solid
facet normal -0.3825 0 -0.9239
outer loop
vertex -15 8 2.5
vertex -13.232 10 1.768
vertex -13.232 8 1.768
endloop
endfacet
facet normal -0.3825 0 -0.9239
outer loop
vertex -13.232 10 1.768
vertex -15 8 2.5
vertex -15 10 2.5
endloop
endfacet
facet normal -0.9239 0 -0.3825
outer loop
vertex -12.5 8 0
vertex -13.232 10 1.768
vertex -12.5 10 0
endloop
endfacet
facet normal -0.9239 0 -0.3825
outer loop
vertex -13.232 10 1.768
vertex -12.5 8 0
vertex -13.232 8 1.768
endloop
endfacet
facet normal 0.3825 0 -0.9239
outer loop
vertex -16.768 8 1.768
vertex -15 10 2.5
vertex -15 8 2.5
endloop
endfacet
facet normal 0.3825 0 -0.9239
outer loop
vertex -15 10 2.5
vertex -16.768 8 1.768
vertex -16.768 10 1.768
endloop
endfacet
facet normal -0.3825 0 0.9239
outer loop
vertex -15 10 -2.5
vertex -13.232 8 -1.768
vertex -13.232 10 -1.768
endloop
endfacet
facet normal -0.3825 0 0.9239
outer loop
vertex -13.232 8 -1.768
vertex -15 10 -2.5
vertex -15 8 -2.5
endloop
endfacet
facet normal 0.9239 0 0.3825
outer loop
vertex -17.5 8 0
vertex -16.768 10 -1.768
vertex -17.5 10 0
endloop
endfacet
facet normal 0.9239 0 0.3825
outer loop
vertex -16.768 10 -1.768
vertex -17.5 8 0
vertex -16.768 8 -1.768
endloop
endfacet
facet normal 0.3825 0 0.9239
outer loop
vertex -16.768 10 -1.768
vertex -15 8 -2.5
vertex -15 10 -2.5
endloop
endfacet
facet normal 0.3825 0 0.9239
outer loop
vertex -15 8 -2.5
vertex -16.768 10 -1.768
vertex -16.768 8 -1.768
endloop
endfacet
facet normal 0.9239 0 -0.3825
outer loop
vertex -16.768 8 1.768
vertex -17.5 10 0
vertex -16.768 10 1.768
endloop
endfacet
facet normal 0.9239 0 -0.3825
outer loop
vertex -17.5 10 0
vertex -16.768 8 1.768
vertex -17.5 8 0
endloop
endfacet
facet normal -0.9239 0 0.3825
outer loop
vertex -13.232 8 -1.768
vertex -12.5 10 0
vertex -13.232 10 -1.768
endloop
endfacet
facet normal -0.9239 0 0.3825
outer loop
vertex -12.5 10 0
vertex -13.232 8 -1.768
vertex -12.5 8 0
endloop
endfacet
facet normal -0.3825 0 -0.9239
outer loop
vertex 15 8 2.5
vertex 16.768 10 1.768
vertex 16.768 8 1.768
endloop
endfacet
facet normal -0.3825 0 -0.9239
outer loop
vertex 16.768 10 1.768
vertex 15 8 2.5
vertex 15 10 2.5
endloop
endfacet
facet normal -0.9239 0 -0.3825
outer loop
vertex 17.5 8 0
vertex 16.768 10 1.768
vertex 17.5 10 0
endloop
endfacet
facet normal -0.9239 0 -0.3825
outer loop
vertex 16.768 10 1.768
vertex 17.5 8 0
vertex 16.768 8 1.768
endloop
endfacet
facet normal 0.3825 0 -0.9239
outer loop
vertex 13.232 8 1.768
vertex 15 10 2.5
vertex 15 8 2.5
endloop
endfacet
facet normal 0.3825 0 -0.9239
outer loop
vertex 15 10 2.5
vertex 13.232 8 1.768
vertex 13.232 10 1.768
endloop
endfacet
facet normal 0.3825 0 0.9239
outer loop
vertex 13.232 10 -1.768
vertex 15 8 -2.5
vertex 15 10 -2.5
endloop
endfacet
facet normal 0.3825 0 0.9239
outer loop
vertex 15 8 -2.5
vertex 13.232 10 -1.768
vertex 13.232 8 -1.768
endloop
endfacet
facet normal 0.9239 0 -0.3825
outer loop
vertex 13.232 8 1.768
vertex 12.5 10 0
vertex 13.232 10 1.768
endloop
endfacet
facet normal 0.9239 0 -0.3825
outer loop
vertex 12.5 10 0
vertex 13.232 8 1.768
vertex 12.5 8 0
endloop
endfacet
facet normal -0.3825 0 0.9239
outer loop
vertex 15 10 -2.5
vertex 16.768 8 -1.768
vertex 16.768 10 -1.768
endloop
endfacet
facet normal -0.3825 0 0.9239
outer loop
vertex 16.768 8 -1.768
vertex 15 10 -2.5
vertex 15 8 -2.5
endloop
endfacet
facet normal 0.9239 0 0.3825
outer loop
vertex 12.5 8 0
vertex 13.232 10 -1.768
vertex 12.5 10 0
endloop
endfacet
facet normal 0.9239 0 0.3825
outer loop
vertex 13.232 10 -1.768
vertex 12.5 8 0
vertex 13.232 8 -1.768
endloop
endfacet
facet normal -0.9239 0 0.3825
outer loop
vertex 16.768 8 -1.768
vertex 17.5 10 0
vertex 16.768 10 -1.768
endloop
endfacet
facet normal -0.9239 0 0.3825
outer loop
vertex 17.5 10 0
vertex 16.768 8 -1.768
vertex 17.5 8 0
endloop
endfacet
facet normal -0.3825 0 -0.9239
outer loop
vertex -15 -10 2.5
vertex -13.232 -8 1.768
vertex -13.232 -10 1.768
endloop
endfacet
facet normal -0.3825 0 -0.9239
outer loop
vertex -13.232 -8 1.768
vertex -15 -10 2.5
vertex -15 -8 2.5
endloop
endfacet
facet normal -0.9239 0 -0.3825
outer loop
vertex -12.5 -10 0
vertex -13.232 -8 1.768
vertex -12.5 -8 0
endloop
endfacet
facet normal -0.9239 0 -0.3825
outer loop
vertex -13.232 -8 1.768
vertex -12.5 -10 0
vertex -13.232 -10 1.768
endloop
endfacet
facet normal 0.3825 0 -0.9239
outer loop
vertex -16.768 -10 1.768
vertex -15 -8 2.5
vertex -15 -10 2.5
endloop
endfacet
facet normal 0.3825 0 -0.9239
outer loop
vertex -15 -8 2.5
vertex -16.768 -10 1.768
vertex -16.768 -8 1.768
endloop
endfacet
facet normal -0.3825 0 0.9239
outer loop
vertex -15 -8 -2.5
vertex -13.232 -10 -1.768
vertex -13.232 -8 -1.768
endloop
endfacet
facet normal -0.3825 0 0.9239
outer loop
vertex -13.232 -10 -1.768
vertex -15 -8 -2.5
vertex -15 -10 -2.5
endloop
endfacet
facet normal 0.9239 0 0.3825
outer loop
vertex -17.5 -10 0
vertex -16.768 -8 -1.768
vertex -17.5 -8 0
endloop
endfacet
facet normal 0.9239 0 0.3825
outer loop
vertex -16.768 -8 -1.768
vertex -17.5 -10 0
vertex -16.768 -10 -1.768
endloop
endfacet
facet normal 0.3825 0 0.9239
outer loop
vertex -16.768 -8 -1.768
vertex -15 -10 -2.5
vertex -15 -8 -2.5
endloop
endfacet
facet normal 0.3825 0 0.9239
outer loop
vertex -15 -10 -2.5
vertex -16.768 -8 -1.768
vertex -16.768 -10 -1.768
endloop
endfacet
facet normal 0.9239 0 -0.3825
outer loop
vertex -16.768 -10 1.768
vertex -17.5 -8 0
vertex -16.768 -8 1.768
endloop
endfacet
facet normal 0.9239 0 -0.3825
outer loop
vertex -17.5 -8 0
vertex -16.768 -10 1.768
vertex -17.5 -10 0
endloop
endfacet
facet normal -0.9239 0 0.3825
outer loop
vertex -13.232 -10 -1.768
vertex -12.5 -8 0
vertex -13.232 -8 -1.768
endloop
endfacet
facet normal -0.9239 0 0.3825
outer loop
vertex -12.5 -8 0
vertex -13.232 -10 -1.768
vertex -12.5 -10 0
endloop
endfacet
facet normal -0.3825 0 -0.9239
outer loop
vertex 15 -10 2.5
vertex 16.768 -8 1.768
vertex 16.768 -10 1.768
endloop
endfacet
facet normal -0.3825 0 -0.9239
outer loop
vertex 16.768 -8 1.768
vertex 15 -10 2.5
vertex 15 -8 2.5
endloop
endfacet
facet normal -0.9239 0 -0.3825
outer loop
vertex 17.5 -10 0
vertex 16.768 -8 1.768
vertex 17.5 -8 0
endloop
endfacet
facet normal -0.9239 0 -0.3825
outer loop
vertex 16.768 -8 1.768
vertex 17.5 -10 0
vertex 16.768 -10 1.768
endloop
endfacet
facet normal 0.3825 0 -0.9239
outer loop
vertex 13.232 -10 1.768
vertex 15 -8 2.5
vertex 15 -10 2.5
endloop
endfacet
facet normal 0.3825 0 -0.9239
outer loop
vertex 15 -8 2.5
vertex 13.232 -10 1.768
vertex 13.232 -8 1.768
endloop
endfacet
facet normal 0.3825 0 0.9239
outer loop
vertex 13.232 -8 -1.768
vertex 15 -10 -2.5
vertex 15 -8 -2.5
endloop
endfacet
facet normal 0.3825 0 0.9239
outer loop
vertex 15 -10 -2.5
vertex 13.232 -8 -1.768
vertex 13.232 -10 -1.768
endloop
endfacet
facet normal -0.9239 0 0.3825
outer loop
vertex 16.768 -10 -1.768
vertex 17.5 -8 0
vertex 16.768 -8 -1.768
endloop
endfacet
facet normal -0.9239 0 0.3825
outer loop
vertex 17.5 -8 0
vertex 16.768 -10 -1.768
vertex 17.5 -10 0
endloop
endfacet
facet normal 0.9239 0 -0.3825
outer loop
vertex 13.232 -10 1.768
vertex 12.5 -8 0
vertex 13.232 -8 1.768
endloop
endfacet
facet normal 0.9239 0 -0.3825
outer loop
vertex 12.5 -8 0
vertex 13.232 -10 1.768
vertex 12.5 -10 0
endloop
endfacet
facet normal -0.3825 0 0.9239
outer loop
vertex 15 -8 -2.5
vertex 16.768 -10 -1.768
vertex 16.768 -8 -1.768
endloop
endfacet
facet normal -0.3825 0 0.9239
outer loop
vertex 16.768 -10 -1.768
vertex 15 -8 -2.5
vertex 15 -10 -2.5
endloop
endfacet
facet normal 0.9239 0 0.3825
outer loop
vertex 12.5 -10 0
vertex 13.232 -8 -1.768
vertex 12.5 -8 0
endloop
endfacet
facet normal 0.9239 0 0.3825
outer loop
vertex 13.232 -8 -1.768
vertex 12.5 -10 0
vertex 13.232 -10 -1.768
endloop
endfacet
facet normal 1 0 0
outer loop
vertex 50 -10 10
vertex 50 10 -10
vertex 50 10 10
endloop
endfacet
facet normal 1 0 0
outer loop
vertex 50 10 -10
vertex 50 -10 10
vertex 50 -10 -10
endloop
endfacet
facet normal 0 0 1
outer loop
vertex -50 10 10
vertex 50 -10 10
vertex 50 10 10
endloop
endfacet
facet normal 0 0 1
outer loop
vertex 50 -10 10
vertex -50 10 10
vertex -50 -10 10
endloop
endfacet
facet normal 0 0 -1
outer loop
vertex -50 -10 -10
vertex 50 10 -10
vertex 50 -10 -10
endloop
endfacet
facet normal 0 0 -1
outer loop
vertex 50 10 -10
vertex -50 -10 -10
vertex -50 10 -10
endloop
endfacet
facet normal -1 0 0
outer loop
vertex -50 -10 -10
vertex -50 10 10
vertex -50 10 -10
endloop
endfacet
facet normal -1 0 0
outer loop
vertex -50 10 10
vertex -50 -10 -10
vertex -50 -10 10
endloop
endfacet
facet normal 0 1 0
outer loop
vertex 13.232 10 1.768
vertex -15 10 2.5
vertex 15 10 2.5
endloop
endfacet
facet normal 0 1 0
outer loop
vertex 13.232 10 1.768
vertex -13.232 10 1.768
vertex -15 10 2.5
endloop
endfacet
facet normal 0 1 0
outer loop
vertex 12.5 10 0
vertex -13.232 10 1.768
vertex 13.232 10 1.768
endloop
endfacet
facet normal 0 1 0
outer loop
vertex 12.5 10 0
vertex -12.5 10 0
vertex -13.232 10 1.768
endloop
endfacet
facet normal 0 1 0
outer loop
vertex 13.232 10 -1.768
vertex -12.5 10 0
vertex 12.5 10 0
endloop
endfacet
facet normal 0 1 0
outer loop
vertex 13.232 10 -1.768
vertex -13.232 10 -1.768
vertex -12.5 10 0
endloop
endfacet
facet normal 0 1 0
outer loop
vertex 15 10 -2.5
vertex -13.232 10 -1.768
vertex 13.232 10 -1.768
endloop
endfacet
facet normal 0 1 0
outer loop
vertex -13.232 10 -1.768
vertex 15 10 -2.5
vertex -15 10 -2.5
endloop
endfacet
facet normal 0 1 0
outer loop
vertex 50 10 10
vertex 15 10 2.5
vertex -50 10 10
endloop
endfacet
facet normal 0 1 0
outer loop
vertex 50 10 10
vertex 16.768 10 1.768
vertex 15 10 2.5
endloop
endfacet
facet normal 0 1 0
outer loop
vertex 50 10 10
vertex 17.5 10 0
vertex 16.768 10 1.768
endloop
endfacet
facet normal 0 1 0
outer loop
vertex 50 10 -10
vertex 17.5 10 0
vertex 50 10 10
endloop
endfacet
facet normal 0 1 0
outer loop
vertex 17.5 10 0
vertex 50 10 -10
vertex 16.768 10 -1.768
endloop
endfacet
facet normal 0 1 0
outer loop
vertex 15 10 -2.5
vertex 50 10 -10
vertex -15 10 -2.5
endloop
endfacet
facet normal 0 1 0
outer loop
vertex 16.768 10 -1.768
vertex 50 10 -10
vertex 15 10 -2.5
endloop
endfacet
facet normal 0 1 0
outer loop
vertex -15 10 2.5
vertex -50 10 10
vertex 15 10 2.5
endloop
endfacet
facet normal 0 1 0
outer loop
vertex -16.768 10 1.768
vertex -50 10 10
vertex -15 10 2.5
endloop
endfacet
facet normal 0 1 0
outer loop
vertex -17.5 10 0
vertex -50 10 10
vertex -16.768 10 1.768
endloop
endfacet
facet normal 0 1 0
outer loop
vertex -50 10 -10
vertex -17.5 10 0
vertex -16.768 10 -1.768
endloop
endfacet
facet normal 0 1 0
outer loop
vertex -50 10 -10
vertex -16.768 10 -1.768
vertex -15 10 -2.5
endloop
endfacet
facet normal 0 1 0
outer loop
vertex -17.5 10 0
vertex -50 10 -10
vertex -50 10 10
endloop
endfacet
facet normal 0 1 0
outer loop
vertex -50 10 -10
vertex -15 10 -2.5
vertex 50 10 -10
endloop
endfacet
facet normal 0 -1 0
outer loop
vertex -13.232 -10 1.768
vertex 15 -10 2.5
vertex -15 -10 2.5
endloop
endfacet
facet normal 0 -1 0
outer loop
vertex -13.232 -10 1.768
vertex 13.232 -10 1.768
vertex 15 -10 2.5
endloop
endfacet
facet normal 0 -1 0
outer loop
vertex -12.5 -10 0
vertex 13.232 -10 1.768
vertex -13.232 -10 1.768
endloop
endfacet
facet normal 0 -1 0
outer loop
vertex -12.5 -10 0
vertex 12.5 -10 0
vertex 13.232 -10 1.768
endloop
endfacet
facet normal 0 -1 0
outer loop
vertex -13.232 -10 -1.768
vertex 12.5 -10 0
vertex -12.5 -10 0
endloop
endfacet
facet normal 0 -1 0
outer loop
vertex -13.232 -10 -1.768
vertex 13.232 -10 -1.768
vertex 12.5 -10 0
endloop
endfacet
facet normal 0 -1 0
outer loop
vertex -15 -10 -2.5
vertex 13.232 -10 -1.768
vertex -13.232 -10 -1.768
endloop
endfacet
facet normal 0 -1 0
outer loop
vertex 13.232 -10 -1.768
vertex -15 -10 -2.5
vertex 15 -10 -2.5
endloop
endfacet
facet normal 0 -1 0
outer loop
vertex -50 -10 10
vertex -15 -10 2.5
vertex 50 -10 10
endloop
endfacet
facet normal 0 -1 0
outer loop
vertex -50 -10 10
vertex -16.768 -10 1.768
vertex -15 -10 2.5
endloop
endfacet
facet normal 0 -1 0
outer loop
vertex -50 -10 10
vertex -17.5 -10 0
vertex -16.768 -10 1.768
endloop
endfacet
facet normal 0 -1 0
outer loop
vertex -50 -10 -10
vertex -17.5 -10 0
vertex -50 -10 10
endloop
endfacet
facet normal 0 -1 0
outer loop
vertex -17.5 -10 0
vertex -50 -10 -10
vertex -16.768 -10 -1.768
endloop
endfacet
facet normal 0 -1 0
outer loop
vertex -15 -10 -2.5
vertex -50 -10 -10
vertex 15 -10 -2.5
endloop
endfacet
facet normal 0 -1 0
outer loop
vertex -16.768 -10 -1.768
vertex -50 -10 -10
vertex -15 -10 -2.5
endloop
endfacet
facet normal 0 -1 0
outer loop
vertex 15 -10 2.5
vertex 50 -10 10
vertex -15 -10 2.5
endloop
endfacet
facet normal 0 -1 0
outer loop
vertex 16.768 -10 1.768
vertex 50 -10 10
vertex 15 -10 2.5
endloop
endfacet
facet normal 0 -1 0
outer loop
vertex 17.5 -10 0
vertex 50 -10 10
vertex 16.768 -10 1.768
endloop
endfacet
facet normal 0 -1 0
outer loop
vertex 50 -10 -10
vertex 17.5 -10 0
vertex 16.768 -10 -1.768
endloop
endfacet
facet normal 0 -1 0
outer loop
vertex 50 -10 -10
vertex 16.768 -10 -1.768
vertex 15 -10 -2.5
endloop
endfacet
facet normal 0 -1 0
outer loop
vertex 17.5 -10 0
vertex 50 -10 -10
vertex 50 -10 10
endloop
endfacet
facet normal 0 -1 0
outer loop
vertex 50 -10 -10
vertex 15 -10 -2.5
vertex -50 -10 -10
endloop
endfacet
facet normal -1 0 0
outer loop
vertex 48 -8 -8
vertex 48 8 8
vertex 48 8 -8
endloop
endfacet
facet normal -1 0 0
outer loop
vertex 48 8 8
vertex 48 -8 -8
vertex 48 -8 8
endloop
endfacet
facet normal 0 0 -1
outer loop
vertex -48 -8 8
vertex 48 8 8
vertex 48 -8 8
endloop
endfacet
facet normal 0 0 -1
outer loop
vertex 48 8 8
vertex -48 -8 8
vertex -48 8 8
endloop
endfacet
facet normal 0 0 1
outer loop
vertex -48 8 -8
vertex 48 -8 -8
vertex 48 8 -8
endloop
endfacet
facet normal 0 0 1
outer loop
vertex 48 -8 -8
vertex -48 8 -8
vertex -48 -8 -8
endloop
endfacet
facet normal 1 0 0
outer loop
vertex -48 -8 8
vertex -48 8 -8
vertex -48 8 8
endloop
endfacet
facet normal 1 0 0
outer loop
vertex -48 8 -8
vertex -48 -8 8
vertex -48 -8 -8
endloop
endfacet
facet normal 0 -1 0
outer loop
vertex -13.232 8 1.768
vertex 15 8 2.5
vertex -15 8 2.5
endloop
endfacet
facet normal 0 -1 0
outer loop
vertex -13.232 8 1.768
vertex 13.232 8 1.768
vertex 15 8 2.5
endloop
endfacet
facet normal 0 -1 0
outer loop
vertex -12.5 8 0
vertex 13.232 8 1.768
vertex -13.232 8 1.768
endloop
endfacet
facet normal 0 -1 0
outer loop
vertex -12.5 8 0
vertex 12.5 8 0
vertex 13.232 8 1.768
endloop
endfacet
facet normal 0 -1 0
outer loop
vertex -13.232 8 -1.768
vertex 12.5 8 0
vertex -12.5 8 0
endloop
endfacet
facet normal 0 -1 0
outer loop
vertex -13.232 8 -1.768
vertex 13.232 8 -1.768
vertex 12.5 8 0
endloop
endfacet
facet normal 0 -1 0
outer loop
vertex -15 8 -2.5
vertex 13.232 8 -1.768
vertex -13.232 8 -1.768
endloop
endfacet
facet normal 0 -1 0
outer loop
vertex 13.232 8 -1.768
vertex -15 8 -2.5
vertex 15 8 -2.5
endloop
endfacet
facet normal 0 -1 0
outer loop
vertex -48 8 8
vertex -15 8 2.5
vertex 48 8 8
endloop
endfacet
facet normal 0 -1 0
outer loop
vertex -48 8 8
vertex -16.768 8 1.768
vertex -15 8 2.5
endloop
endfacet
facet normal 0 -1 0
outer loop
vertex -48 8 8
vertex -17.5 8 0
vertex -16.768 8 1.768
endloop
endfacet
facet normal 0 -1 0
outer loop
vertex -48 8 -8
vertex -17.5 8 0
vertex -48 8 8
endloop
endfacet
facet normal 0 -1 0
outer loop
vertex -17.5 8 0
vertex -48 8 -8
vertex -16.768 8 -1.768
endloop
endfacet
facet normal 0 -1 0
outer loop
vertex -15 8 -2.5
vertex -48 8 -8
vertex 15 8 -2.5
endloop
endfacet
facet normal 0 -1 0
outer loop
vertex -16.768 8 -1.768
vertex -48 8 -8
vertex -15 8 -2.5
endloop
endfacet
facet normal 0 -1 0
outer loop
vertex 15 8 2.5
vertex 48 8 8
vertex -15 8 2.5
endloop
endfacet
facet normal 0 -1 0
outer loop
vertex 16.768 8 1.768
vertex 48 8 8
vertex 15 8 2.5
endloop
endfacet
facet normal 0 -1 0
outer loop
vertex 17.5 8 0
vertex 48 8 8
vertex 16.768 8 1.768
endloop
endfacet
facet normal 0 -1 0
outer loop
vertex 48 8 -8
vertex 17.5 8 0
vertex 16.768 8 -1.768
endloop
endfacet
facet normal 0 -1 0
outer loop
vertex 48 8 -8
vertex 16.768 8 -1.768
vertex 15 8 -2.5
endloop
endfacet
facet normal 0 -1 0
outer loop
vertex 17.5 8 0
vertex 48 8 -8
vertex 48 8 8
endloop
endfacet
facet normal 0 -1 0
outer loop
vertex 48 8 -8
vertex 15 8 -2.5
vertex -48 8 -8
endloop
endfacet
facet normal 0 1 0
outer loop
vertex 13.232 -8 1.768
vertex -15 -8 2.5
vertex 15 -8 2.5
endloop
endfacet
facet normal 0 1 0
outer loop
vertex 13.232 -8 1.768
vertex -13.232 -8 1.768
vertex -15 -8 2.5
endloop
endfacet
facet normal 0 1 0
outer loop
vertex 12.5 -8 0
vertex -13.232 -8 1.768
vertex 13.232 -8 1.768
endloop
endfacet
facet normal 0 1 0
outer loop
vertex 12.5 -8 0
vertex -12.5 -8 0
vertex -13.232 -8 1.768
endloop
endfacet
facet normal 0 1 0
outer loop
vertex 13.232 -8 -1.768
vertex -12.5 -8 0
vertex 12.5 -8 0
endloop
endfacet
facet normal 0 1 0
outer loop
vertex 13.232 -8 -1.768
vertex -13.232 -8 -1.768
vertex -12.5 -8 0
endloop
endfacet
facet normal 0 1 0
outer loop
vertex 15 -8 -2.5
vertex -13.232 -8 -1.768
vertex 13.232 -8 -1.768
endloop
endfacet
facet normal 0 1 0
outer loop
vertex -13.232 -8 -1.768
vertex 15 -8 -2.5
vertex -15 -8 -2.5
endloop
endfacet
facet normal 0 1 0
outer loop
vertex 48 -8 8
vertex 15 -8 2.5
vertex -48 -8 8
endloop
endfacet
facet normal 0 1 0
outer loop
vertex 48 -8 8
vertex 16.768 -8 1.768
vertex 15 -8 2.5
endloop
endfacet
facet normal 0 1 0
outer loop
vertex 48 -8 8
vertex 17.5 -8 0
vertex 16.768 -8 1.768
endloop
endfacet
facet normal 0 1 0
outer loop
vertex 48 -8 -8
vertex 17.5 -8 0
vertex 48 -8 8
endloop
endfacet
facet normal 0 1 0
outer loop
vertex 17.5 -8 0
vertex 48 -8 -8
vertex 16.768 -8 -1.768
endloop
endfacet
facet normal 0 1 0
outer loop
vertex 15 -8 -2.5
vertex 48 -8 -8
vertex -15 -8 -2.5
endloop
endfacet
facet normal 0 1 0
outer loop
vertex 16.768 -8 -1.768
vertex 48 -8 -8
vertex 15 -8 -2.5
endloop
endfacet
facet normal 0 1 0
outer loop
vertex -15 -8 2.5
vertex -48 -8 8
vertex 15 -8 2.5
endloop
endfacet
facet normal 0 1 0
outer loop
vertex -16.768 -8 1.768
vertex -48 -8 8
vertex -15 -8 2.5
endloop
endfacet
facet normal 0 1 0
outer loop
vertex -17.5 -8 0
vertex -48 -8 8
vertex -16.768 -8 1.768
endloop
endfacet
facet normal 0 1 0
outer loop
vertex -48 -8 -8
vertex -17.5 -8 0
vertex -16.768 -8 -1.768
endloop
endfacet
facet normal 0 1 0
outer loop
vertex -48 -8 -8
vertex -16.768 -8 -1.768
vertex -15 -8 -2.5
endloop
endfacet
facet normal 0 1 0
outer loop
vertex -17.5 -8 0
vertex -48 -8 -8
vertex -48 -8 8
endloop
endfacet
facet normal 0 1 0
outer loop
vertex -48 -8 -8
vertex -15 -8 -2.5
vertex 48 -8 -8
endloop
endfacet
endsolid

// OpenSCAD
// Parameters for the rectangular hollow component
length = 100; // Length of the prism
width = 20;   // Outer width of the prism
height = 20;  // Outer height of the prism
thickness = 2; // Wall thickness of the hollow prism
hole_diameter = 5; // Diameter of the circular holes
hole_spacing = 30; // Spacing between the holes along the length

module rectangular_hollow_component() {
    // Outer rectangular prism
    difference() {
        cube([length, width, height], center = true);
        
        // Inner hollow space
        translate([0, 0, 0])
            cube([length - 2 * thickness, width - 2 * thickness, height - 2 * thickness], center = true);
        
        // Circular holes on one face
        for (i = [-1, 1]) {
            translate([i * hole_spacing / 2, width / 2, 0])
                rotate([90, 0, 0])
                    cylinder(r = hole_diameter / 2, h = width + 1, center = true);
        }
        
        // Circular holes on the opposite face
        for (i = [-1, 1]) {
            translate([i * hole_spacing / 2, -width / 2, 0])
                rotate([90, 0, 0])
                    cylinder(r = hole_diameter / 2, h = width + 1, center = true);
        }
    }
}

// Render the rectangular hollow component
rectangular_hollow_component();
